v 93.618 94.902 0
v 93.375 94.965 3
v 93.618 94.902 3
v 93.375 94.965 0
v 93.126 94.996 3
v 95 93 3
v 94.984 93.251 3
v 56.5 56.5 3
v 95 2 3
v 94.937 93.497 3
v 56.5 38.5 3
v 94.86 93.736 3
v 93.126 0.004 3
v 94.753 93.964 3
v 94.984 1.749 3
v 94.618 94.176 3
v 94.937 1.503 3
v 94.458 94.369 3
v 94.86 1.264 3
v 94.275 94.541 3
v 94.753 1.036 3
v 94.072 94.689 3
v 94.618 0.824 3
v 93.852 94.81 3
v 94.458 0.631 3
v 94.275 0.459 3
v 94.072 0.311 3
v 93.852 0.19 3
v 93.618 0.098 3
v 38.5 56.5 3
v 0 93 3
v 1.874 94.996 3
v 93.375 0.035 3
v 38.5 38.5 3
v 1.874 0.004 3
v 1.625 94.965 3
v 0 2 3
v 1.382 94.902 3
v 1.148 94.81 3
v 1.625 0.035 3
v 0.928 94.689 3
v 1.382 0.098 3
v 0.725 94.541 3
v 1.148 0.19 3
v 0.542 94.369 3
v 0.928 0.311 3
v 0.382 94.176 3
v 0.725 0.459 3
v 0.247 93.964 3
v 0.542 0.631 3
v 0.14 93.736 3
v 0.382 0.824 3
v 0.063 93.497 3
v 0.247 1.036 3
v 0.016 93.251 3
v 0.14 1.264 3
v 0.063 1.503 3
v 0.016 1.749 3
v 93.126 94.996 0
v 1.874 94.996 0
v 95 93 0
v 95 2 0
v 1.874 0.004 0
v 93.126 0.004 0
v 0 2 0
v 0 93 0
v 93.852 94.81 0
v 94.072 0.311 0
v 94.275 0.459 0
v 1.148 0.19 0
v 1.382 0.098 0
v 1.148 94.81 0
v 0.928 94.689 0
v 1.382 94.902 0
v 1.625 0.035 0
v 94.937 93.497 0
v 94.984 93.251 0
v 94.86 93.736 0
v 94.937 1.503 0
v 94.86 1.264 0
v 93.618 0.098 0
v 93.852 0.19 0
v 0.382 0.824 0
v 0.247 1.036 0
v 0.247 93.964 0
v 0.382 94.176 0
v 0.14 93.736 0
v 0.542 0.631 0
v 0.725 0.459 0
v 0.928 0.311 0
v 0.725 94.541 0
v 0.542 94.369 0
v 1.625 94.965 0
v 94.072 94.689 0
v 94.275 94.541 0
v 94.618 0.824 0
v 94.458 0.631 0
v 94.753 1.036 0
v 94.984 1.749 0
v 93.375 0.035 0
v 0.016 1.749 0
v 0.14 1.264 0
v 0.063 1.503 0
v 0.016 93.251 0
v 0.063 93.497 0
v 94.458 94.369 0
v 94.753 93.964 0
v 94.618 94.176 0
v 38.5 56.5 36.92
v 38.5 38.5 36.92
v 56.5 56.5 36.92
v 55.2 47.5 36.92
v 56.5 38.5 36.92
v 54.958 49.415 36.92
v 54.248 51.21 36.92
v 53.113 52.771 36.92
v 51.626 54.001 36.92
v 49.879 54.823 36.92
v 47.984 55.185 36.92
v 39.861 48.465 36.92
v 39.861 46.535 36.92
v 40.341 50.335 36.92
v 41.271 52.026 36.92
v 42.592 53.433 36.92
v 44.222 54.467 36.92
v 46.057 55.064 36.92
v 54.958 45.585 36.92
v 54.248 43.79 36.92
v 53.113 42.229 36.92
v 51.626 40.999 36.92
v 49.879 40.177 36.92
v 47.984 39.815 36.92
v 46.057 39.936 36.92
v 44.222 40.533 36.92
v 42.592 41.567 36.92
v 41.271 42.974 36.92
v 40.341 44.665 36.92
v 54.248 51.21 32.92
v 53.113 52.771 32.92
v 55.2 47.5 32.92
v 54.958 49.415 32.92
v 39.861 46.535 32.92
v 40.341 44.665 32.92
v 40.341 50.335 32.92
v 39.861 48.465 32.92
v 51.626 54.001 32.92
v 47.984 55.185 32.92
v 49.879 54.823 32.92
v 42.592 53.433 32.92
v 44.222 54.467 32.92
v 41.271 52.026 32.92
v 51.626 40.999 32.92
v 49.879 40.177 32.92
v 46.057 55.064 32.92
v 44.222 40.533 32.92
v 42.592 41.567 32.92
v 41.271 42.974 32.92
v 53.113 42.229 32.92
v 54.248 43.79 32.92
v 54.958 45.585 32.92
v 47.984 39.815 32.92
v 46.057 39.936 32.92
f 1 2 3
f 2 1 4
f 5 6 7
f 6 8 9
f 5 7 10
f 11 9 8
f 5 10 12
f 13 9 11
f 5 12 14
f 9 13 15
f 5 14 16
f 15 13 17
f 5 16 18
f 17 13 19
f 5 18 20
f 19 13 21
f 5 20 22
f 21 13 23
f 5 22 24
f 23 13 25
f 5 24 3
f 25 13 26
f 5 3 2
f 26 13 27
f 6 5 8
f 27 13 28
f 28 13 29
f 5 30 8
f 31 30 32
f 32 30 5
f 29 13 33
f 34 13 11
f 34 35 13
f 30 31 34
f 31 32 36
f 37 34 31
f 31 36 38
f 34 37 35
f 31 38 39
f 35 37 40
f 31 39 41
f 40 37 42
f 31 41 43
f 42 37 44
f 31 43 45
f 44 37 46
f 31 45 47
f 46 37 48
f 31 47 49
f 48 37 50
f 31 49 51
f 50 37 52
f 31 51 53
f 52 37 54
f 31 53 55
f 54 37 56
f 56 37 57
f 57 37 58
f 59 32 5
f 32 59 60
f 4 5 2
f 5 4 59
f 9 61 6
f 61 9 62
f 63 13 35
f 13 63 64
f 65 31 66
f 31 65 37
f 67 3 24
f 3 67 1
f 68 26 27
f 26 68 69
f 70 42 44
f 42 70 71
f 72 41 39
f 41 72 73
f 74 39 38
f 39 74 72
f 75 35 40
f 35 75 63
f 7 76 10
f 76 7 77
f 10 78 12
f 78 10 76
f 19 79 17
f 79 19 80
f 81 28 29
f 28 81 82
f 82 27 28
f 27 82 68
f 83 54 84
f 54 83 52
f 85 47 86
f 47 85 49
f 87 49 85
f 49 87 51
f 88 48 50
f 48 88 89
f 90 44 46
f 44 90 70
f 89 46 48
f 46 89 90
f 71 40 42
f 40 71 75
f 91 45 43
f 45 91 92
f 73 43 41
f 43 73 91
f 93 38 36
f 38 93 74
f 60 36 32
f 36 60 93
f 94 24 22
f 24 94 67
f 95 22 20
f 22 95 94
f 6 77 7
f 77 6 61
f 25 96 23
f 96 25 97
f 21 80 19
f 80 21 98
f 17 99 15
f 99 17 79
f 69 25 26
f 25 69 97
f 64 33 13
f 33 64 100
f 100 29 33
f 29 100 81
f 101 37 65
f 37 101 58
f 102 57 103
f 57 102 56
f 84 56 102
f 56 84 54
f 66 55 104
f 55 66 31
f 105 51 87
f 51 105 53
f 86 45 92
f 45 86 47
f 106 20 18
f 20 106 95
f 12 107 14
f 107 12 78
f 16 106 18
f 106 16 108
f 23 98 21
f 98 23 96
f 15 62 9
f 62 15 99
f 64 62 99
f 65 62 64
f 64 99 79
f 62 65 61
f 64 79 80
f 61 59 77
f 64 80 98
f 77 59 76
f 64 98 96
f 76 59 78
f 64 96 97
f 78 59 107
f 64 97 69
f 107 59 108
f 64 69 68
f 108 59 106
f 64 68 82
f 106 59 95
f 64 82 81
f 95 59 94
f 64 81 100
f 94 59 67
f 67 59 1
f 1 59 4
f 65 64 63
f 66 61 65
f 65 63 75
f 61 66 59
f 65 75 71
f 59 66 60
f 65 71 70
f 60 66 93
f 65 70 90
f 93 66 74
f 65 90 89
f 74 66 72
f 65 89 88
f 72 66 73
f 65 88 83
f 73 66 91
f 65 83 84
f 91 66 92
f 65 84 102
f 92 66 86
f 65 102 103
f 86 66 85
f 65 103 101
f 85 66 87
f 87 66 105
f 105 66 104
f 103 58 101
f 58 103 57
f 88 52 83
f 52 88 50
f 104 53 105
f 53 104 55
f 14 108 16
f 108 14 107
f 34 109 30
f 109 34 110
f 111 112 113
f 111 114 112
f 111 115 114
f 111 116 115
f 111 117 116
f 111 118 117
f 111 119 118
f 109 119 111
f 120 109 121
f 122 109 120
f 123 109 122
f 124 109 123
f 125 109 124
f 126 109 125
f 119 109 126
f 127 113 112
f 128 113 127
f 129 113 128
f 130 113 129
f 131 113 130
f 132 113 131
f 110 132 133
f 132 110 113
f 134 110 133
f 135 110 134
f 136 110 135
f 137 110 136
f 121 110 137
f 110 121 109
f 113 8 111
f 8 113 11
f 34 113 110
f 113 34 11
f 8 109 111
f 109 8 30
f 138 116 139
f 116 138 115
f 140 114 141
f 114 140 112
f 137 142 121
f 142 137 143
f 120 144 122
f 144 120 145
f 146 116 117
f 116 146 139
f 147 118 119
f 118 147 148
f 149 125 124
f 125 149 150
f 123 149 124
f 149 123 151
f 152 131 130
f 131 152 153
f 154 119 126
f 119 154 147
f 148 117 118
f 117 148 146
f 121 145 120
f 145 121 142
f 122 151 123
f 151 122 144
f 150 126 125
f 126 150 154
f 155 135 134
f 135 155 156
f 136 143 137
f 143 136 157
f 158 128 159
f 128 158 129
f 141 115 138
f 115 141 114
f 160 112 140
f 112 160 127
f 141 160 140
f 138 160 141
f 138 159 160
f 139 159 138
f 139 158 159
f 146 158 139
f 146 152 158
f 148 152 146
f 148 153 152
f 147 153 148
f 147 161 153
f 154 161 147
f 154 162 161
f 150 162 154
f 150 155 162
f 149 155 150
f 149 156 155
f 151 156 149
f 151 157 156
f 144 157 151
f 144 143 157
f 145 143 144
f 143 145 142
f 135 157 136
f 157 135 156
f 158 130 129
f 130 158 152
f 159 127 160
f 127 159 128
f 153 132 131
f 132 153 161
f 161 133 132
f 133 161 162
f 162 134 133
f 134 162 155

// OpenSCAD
// file: SquarePileLib.scad
module LeftPile(wallThickness, totalHeight, singlePileHeight, singlePileWidth, singlePileLength, pileCount){
//    15.05 by 14.95 by 2.15
    pileHeight = (pileCount * singlePileHeight) + .5;
    openingSize = singlePileWidth * .75;
    blockerSize = (singlePileLength - openingSize) / 2;
    
    translate([wallThickness, wallThickness, totalHeight - pileHeight])
        cube([singlePileLength, singlePileWidth, pileHeight]);
    translate([-.00001, wallThickness + (blockerSize), 0])
        cube([wallThickness + openingSize, openingSize, totalHeight]);
}

module RightPile(wallThickness, totalHeight, singlePileHeight, singlePileWidth, singlePileLength, pileCount){
    translate([0, wallThickness + wallThickness + singlePileWidth, 0])
        rotate([0, 0, 180])
            LeftPile(wallThickness, totalHeight, singlePileHeight, singlePileWidth, singlePileLength, pileCount);
}

module BottomPile(wallThickness, totalHeight, singlePileHeight, singlePileWidth, singlePileLength, pileCount){
    translate([wallThickness + wallThickness + singlePileWidth, 0, 0])
        rotate([0, 0, 90])
            LeftPile(wallThickness, totalHeight, singlePileHeight, singlePileWidth, singlePileLength, pileCount);
}

module TopPile(wallThickness, totalHeight, singlePileHeight, singlePileWidth, singlePileLength, pileCount){
//    translate([
//        wallThickness + wallThickness + singlePileWidth,
//        wallThickness + wallThickness + singlePileWidth,
//        0])
        rotate([0, 0, 270])
            LeftPile(wallThickness, totalHeight, singlePileHeight, singlePileWidth, singlePileLength, pileCount);
}
// file: EotVRecruitsLib.scad
include<SquarePileLib.scad>
singleRecruitPileHeight = 1.91;
singleRecruitPileWidth = 26.45 + 1.5;
singleRecruitPileLength = 26.45 + 1.5;

module LeftRecruitPile(wallThickness, totalHeight, recruitPileCount){
    LeftPile(
        wallThickness,
        totalHeight,
        singleRecruitPileHeight,
        singleRecruitPileWidth,
        singleRecruitPileLength,
        recruitPileCount);
}

module RightRecruitPile(wallThickness, totalHeight, recruitPileCount){
    RightPile(
        wallThickness,
        totalHeight,
        singleRecruitPileHeight,
        singleRecruitPileWidth,
        singleRecruitPileLength,
        recruitPileCount);
}

module BottomRecruitPile(wallThickness, totalHeight, recruitPileCount){
    BottomPile(
        wallThickness,
        totalHeight,
        singleRecruitPileHeight,
        singleRecruitPileWidth,
        singleRecruitPileLength,
        recruitPileCount);
}

module TopRecruitPile(wallThickness, totalHeight, recruitPileCount){
    TopPile(
        wallThickness,
        totalHeight,
        singleRecruitPileHeight,
        singleRecruitPileWidth,
        singleRecruitPileLength,
        recruitPileCount);
}

function recruitPileHeight(recruitPileCount) =
    (recruitPileCount * singleRecruitPileHeight) + .5;
// main file
include<EotVRecruitsLib.scad>

length = 95;
width = 95;

height = 3;


magnetHoleWidth = 19;
floorThickness = 3;
maxRecruitsPerStack = 4;
singleLayerHeight = recruitPileHeight(maxRecruitsPerStack) + floorThickness;
pillarHeight = (singleLayerHeight * 3)+ .5 + height;
echo (pillarHeight);

//Based on magnet size:
pillarSideLength = 18;
pillarSideOffset = .5;

magnetBaseInnerDiameter = 15.4;
magnetHeight = 4.0;

spaceBetweenCircles = 2;


difference() {
union(){
    $fn=50;
    minkowski()
    {
      translate([2,2,0])
        cube([length-4, width-4, height - 1]);
      cylinder(r=2,h=1);
    }


//----------------------------------


            
//---------------------------------------------------------------------
    
          

//----------------------------------------
   
    translate([length/2 - ((pillarSideLength)/2), width/2 - ((pillarSideLength)/2), 0])
        cube([pillarSideLength, pillarSideLength, pillarHeight]);
        

}
    translate([length/2,  width/2, pillarHeight - magnetHeight])
        cylinder(magnetHeight, d=magnetBaseInnerDiameter);

}
